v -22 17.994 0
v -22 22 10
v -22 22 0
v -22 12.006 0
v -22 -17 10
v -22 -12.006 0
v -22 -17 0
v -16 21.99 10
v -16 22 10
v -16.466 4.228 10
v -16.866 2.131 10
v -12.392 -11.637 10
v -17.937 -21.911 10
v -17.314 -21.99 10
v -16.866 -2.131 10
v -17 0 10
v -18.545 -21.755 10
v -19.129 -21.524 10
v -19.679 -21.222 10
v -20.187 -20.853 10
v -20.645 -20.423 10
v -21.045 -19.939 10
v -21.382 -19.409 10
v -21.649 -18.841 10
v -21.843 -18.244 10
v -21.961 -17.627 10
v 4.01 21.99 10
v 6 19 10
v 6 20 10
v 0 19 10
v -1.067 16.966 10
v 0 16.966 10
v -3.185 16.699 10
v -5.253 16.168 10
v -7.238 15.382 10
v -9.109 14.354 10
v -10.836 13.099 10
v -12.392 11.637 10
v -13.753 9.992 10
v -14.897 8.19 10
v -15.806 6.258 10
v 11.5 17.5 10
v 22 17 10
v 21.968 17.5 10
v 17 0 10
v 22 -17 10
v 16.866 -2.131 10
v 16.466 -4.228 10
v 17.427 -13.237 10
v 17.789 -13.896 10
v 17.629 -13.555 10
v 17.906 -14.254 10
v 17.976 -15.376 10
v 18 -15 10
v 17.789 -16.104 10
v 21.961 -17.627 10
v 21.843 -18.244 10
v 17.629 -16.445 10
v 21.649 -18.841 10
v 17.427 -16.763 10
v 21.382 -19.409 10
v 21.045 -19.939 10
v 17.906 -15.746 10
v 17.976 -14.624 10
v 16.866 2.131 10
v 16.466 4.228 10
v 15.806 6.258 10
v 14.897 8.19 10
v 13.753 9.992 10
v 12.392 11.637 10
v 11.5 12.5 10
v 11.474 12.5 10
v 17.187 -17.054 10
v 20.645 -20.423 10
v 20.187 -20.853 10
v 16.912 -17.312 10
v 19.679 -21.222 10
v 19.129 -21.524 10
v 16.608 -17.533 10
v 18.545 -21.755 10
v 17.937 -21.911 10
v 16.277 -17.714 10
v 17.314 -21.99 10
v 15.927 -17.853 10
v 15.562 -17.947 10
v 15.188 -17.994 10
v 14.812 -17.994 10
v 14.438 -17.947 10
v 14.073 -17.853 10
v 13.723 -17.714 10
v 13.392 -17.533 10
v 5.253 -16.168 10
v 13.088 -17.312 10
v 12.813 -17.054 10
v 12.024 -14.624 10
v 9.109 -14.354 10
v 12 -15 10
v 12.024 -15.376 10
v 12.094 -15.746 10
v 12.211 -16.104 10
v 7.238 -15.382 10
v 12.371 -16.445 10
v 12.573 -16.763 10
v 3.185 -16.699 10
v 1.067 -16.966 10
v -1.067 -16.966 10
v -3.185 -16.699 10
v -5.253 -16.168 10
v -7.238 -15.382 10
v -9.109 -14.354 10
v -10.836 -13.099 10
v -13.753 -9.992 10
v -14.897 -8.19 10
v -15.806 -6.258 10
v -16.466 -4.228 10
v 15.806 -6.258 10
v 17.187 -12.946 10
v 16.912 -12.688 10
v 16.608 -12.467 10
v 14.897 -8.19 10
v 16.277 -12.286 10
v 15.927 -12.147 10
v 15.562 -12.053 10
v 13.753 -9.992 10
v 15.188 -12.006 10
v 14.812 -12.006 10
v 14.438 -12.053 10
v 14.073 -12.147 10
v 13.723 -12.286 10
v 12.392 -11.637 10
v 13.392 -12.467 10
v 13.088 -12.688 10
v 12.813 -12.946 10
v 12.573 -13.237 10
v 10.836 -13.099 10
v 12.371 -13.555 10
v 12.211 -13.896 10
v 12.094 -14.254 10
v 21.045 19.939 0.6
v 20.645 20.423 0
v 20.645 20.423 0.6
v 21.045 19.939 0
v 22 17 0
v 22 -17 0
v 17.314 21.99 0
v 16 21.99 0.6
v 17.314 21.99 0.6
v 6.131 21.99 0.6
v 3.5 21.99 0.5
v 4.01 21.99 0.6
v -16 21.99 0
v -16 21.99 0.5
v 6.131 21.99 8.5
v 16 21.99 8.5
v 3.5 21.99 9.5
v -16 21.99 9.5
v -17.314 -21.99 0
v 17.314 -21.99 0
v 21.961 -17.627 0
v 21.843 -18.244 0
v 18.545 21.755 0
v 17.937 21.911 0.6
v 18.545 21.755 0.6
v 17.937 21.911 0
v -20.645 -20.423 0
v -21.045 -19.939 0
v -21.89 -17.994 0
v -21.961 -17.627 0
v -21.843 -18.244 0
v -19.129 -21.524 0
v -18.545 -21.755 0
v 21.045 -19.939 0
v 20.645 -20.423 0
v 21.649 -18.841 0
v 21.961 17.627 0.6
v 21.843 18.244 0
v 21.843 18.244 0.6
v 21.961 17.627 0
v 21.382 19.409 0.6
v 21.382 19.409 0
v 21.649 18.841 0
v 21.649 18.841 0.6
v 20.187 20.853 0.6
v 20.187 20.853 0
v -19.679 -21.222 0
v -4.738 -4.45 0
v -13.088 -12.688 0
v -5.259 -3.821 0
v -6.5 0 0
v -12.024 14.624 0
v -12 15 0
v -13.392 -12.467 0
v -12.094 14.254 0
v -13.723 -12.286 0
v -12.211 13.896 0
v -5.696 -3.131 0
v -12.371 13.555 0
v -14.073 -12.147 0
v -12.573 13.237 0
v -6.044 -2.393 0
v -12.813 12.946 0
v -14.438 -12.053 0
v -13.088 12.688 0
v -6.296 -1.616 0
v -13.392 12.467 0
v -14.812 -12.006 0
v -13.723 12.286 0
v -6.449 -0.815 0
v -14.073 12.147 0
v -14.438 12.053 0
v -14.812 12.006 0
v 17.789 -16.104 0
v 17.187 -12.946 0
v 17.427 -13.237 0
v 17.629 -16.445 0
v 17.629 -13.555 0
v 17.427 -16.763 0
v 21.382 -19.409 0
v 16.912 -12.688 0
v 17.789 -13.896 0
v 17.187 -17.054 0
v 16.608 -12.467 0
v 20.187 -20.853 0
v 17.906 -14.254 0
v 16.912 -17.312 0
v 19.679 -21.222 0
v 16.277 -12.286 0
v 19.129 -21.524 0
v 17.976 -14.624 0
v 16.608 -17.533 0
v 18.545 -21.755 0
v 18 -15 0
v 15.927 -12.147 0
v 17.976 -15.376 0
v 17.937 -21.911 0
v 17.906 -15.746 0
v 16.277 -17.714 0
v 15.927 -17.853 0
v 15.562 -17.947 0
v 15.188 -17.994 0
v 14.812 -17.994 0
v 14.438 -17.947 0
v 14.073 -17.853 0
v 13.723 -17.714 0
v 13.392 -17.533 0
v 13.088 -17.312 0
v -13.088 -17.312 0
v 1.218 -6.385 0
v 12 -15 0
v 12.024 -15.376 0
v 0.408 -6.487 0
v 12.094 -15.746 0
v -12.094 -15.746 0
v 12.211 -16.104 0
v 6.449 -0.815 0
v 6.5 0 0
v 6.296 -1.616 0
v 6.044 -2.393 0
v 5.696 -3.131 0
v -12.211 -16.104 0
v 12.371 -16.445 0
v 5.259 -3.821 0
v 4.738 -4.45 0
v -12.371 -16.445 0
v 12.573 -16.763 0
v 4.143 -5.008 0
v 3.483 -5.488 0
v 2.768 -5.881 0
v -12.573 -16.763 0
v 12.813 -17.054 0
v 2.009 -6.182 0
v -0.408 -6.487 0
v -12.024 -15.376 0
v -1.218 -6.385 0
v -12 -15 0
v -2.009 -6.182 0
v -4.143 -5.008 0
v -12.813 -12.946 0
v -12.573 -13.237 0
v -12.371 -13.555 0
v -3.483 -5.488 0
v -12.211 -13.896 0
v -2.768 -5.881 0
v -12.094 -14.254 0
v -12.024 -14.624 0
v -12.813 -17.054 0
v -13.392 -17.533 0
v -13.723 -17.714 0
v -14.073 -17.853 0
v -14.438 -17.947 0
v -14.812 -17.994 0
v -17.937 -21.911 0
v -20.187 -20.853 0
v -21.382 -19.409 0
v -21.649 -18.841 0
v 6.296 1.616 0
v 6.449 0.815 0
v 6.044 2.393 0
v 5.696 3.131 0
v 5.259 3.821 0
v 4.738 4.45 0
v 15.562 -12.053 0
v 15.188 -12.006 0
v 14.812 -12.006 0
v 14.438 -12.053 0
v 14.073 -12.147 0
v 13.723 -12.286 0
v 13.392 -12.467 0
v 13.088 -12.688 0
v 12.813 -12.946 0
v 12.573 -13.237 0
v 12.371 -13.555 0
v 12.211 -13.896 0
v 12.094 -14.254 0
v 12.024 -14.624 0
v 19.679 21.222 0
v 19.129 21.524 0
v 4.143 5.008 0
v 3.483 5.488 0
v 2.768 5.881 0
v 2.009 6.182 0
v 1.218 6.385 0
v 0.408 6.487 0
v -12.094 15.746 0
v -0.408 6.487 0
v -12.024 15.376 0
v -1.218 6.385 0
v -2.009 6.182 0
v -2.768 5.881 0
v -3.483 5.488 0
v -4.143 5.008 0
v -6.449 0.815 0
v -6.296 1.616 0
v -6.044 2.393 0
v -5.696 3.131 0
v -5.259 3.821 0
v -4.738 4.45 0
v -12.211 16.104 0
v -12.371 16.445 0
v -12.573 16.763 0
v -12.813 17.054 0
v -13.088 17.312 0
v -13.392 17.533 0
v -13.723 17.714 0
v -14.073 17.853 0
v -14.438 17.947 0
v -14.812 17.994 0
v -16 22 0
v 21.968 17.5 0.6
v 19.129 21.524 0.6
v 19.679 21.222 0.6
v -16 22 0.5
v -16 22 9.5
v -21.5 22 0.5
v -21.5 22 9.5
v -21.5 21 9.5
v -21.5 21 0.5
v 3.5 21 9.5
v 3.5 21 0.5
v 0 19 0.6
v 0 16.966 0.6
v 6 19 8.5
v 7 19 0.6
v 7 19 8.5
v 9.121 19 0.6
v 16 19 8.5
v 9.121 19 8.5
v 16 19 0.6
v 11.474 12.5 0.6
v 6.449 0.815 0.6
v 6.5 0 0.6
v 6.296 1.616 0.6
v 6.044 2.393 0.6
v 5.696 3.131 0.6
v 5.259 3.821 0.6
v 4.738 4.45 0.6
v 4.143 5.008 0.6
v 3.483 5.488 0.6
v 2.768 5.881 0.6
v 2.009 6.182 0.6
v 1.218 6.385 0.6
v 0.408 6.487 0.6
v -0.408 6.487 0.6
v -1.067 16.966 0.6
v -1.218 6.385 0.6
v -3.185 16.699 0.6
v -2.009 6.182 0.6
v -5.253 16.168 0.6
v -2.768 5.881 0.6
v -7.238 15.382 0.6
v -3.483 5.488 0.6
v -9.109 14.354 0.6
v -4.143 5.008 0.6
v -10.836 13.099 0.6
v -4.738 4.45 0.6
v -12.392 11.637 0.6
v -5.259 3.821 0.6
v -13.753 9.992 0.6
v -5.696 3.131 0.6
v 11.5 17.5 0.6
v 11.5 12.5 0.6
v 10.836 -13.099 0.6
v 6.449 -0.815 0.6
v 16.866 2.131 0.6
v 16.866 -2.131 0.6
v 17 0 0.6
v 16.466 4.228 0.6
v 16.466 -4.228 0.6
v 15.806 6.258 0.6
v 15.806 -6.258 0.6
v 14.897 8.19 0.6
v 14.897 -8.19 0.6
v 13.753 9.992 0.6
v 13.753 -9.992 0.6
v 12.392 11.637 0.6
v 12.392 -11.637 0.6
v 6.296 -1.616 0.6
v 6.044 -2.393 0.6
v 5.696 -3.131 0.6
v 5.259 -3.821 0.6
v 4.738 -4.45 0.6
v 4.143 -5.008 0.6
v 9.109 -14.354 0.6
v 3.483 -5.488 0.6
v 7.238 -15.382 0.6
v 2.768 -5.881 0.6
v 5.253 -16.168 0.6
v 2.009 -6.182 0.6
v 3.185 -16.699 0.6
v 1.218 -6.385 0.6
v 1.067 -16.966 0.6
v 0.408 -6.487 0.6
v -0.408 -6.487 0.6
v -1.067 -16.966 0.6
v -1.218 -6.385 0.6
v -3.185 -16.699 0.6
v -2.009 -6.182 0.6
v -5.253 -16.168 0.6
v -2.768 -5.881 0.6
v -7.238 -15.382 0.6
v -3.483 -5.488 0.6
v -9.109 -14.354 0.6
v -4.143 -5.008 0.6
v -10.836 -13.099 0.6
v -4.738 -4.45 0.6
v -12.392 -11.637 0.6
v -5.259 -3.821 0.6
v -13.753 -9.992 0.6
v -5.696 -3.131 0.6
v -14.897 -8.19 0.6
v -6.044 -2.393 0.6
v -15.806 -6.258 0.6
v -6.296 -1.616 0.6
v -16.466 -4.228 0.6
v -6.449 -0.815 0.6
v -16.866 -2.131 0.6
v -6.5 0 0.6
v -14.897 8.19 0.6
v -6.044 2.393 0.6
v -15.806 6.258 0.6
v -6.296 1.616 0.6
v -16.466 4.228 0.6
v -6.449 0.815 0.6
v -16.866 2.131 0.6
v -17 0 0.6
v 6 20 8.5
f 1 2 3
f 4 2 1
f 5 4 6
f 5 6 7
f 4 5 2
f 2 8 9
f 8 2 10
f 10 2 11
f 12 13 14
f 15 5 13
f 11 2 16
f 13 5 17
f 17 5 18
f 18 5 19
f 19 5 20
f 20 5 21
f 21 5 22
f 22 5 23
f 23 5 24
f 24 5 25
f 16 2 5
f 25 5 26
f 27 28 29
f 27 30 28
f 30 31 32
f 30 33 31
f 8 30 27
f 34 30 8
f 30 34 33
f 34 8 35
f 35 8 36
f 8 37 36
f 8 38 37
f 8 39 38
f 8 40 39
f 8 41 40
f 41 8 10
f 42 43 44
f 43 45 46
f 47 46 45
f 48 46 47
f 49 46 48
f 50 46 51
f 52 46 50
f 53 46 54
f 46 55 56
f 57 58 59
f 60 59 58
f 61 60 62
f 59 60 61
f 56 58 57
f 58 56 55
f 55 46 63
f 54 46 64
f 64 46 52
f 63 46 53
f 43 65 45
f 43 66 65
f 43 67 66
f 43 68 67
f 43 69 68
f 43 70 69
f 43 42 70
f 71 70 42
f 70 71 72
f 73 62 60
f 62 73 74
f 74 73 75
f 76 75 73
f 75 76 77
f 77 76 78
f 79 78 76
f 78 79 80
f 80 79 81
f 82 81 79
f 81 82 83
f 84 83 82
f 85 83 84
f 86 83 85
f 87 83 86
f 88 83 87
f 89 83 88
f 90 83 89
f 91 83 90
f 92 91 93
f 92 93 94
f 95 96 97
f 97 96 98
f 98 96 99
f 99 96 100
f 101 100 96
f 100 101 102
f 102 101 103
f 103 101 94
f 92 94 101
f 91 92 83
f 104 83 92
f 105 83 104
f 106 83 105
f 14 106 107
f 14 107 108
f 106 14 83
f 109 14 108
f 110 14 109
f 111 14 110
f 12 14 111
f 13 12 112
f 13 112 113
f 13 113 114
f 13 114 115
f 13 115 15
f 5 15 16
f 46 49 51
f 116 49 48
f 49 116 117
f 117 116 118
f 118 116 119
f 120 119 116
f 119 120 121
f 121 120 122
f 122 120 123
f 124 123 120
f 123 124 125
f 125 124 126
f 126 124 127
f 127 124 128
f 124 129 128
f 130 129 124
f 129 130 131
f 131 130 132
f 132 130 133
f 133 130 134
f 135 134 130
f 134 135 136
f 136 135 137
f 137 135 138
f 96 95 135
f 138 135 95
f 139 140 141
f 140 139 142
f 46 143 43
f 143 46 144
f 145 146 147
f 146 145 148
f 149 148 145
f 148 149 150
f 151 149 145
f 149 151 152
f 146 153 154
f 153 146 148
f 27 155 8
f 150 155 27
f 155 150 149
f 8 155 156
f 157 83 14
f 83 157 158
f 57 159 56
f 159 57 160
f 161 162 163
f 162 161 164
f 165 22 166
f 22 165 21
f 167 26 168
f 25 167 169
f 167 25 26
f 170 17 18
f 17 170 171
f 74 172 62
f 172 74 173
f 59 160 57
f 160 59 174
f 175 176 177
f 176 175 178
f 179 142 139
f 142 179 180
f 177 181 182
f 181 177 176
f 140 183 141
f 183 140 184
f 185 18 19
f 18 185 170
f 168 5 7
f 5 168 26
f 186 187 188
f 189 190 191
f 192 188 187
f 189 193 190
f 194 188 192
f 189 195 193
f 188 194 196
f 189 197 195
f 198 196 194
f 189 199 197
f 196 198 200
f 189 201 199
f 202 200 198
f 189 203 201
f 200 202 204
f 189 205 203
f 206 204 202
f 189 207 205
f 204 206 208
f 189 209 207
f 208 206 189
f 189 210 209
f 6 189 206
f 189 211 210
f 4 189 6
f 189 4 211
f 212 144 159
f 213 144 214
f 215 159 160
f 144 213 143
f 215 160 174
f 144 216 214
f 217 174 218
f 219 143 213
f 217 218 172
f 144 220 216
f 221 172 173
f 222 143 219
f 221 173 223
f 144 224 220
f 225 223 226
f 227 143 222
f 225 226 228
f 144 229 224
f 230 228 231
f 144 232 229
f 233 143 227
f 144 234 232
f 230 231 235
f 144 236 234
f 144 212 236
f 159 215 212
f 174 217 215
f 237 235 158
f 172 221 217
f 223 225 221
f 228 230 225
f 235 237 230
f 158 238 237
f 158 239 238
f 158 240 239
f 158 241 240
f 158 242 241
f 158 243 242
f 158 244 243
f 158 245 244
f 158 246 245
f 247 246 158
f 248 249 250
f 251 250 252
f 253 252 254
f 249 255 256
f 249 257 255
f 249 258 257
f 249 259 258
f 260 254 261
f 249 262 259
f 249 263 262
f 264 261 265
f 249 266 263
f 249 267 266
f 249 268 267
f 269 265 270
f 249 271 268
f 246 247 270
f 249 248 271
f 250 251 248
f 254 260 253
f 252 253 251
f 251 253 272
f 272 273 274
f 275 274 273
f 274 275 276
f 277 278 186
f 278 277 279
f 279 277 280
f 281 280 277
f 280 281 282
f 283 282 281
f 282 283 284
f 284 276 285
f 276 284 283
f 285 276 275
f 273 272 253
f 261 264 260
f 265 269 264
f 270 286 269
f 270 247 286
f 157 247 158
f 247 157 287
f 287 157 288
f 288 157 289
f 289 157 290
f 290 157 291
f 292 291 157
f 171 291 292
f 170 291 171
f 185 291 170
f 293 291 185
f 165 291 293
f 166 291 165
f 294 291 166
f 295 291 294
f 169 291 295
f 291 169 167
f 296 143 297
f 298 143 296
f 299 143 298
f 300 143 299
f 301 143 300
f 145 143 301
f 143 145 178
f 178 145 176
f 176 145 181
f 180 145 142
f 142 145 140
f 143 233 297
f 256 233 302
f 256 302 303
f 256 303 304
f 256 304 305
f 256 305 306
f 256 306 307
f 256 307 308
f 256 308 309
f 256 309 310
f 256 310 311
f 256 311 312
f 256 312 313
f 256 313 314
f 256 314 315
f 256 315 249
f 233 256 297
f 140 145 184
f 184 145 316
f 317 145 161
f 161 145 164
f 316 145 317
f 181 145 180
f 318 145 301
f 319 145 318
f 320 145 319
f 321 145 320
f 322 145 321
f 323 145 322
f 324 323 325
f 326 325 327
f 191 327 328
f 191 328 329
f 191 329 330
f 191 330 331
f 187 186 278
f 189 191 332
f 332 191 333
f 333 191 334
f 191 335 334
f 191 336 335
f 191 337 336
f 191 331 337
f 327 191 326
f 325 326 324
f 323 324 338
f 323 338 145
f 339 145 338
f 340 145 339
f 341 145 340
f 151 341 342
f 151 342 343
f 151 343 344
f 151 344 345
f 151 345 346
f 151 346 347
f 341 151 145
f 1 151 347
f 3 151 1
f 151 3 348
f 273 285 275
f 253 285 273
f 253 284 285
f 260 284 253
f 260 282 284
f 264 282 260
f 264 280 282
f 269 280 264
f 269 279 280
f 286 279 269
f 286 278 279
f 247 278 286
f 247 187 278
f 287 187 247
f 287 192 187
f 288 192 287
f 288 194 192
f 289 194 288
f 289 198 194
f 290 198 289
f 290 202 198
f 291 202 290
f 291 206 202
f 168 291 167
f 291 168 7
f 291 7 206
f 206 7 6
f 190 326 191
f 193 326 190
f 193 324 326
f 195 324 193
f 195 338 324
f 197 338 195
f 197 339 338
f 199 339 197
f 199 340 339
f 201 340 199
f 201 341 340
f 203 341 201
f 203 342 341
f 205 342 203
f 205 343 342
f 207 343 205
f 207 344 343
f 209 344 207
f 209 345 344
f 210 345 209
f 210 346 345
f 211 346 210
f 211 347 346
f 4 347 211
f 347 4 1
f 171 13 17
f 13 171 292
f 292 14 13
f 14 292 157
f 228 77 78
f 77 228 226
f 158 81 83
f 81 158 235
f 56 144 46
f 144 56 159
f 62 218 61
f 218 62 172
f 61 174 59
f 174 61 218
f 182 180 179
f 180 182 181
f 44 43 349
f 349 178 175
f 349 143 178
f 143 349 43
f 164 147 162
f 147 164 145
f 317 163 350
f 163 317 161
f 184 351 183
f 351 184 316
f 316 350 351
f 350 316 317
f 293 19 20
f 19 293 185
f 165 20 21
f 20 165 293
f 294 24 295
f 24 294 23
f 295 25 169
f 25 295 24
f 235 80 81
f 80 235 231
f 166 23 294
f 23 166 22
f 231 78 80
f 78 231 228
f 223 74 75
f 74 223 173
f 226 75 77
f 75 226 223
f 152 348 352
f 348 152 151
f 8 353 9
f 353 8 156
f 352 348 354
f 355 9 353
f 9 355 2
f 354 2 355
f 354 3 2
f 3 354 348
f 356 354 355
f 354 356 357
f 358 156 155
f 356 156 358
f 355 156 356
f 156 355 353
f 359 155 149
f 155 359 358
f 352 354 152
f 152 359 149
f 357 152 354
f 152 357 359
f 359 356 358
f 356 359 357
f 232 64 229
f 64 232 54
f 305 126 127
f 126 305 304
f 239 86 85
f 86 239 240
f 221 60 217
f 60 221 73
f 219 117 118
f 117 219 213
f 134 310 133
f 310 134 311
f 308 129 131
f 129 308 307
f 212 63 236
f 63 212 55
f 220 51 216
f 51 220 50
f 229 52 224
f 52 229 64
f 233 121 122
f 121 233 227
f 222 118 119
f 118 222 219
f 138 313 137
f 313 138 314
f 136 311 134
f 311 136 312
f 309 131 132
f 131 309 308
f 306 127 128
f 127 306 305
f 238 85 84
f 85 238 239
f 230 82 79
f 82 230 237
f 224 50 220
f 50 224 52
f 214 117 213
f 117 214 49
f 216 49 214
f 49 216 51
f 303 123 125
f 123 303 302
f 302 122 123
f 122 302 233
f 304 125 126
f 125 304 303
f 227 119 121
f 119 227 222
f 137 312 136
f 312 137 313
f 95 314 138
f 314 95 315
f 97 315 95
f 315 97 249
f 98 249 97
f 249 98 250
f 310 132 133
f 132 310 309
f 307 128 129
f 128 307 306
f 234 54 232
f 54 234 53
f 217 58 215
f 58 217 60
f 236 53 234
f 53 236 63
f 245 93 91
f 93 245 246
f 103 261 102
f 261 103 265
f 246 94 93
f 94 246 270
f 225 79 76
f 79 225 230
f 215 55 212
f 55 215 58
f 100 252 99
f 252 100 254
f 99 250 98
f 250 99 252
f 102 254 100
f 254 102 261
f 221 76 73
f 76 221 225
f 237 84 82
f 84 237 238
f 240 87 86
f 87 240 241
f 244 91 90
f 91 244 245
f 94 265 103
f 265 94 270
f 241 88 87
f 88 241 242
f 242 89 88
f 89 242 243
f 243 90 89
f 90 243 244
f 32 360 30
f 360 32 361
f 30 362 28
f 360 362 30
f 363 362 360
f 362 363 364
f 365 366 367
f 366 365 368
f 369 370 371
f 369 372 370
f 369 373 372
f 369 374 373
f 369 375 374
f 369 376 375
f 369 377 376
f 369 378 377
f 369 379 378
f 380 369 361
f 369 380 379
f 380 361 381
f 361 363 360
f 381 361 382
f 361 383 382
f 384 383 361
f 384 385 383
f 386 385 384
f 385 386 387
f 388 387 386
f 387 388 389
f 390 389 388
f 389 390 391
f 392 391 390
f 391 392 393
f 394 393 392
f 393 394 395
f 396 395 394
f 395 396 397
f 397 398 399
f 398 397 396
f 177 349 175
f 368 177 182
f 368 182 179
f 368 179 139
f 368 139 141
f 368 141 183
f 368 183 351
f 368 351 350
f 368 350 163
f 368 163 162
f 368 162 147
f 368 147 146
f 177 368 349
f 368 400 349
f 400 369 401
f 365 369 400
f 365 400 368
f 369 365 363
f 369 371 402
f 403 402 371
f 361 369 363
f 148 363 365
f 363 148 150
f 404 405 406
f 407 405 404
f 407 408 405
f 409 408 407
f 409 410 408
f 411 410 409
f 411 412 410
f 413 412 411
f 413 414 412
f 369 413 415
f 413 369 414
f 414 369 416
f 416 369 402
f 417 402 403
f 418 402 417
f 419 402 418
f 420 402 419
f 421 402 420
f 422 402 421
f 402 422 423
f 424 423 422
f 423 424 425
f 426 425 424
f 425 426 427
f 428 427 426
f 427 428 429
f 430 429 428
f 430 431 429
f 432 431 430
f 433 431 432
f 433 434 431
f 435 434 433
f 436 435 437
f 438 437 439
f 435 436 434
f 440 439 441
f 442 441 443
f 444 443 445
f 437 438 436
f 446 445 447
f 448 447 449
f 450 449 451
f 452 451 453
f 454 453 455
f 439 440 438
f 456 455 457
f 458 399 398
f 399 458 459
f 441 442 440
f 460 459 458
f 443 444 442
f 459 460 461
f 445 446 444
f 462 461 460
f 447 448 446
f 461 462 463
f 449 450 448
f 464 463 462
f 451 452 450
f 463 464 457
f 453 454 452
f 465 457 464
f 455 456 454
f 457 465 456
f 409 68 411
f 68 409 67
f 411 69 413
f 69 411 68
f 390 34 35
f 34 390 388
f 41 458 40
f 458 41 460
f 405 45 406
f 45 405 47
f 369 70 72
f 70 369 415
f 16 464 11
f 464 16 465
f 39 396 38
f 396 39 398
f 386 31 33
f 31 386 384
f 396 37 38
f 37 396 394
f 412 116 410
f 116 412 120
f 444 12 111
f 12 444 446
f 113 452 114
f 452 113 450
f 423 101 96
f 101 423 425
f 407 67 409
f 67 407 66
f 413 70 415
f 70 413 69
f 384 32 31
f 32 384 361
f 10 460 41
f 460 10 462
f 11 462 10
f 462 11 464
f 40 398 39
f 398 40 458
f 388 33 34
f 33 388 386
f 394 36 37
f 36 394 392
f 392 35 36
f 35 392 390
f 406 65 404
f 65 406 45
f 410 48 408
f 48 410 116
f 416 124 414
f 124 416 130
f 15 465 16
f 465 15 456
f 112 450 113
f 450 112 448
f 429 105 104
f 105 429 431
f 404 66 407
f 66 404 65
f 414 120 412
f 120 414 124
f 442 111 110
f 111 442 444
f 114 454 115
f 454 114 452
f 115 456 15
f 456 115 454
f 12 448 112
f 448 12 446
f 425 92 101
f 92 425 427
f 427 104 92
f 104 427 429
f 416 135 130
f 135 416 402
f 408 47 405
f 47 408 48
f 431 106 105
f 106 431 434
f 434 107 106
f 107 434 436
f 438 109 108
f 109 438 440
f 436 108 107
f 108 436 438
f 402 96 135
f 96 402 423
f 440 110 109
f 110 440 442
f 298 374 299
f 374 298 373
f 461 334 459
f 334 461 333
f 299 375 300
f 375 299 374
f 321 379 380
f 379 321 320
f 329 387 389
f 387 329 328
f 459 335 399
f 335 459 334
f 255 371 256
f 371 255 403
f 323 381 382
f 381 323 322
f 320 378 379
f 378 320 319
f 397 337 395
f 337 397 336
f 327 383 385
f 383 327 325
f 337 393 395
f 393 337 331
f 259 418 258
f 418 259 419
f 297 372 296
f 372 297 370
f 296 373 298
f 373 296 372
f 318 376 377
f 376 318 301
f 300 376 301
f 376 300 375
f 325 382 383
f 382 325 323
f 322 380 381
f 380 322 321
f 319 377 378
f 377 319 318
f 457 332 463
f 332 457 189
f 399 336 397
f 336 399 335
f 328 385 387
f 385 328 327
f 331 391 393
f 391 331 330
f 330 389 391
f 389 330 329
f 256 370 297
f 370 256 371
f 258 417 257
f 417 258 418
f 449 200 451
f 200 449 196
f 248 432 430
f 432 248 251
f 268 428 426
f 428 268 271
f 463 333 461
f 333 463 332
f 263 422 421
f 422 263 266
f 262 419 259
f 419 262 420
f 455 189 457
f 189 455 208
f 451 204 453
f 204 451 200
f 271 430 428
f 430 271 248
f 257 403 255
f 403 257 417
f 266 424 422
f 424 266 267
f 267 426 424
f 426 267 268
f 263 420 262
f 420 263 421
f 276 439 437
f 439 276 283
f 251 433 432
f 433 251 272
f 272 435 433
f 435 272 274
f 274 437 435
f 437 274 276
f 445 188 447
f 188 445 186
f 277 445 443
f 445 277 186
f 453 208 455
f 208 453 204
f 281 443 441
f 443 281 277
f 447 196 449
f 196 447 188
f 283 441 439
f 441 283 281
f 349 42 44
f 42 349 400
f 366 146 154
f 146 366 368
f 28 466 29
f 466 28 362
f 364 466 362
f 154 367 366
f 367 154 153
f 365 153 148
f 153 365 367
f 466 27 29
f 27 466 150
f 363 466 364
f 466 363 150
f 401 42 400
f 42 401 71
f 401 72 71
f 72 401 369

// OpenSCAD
$fn = 50;


difference() {
	union() {
		hull() {
			translate(v = [-17.0000000000, 17.0000000000, 0]) {
				cylinder(h = 10, r = 5);
			}
			translate(v = [17.0000000000, 17.0000000000, 0]) {
				cylinder(h = 10, r = 5);
			}
			translate(v = [-17.0000000000, -17.0000000000, 0]) {
				cylinder(h = 10, r = 5);
			}
			translate(v = [17.0000000000, -17.0000000000, 0]) {
				cylinder(h = 10, r = 5);
			}
		}
		translate(v = [-22.0000000000, 16.0000000000, 0]) {
			cube(size = [6, 6, 10]);
		}
	}
	union() {
		translate(v = [-22.5000000000, -15.0000000000, -250.0000000000]) {
			rotate(a = [0, 0, 0]) {
				difference() {
					union() {
						hull() {
							translate(v = [7.5000000000, 0, 0]) {
								cylinder(h = 250, r = 3.0000000000, r1 = 3.0000000000, r2 = 3.0000000000);
							}
							translate(v = [-7.5000000000, 0, 0]) {
								cylinder(h = 250, r = 3.0000000000, r1 = 3.0000000000, r2 = 3.0000000000);
							}
						}
					}
					union();
				}
			}
		}
		translate(v = [-22.5000000000, 15.0000000000, -250.0000000000]) {
			rotate(a = [0, 0, 0]) {
				difference() {
					union() {
						hull() {
							translate(v = [7.5000000000, 0, 0]) {
								cylinder(h = 250, r = 3.0000000000, r1 = 3.0000000000, r2 = 3.0000000000);
							}
							translate(v = [-7.5000000000, 0, 0]) {
								cylinder(h = 250, r = 3.0000000000, r1 = 3.0000000000, r2 = 3.0000000000);
							}
						}
					}
					union();
				}
			}
		}
		translate(v = [-21.5000000000, 21.0000000000, 0.5000000000]) {
			cube(size = [25, 1, 9.0000000000]);
		}
		translate(v = [15.0000000000, -15.0000000000, -50.0000000000]) {
			cylinder(h = 100, r = 3.0000000000);
		}
		translate(v = [0.0000000000, 11.0000000000, 0.6000000000]) {
			cube(size = [11, 8, 12.4000000000]);
		}
		translate(v = [0, 0, 0.6000000000]) {
			cylinder(h = 12.4000000000, r = 17.0000000000);
		}
		translate(v = [0, 0, -5.0000000000]) {
			cylinder(h = 10, r = 6.5000000000);
		}
		translate(v = [0.0000000000, 17.5000000000, 0.6000000000]) {
			cube(size = [22.0000000000, 1.5000000000, 12.4000000000]);
		}
		translate(v = [16.0000000000, 17.5000000000, 0.6000000000]) {
			cube(size = [6, 4.5000000000, 12.4000000000]);
		}
		translate(v = [6.0000000000, 17.5000000000, 8.5000000000]) {
			cube(size = [16, 4.5000000000, 1.5000000000]);
		}
		translate(v = [3.2500000000, 22.7500000000, 0.6000000000]) {
			rotate(a = [0, 0, -45]) {
				cube(size = [7.5000000000, 1.5000000000, 12.4000000000]);
			}
		}
		translate(v = [2.5000000000, 12.5000000000, 0.6000000000]) {
			cube(size = [9.0000000000, 5, 9.4000000000]);
		}
	}
}
